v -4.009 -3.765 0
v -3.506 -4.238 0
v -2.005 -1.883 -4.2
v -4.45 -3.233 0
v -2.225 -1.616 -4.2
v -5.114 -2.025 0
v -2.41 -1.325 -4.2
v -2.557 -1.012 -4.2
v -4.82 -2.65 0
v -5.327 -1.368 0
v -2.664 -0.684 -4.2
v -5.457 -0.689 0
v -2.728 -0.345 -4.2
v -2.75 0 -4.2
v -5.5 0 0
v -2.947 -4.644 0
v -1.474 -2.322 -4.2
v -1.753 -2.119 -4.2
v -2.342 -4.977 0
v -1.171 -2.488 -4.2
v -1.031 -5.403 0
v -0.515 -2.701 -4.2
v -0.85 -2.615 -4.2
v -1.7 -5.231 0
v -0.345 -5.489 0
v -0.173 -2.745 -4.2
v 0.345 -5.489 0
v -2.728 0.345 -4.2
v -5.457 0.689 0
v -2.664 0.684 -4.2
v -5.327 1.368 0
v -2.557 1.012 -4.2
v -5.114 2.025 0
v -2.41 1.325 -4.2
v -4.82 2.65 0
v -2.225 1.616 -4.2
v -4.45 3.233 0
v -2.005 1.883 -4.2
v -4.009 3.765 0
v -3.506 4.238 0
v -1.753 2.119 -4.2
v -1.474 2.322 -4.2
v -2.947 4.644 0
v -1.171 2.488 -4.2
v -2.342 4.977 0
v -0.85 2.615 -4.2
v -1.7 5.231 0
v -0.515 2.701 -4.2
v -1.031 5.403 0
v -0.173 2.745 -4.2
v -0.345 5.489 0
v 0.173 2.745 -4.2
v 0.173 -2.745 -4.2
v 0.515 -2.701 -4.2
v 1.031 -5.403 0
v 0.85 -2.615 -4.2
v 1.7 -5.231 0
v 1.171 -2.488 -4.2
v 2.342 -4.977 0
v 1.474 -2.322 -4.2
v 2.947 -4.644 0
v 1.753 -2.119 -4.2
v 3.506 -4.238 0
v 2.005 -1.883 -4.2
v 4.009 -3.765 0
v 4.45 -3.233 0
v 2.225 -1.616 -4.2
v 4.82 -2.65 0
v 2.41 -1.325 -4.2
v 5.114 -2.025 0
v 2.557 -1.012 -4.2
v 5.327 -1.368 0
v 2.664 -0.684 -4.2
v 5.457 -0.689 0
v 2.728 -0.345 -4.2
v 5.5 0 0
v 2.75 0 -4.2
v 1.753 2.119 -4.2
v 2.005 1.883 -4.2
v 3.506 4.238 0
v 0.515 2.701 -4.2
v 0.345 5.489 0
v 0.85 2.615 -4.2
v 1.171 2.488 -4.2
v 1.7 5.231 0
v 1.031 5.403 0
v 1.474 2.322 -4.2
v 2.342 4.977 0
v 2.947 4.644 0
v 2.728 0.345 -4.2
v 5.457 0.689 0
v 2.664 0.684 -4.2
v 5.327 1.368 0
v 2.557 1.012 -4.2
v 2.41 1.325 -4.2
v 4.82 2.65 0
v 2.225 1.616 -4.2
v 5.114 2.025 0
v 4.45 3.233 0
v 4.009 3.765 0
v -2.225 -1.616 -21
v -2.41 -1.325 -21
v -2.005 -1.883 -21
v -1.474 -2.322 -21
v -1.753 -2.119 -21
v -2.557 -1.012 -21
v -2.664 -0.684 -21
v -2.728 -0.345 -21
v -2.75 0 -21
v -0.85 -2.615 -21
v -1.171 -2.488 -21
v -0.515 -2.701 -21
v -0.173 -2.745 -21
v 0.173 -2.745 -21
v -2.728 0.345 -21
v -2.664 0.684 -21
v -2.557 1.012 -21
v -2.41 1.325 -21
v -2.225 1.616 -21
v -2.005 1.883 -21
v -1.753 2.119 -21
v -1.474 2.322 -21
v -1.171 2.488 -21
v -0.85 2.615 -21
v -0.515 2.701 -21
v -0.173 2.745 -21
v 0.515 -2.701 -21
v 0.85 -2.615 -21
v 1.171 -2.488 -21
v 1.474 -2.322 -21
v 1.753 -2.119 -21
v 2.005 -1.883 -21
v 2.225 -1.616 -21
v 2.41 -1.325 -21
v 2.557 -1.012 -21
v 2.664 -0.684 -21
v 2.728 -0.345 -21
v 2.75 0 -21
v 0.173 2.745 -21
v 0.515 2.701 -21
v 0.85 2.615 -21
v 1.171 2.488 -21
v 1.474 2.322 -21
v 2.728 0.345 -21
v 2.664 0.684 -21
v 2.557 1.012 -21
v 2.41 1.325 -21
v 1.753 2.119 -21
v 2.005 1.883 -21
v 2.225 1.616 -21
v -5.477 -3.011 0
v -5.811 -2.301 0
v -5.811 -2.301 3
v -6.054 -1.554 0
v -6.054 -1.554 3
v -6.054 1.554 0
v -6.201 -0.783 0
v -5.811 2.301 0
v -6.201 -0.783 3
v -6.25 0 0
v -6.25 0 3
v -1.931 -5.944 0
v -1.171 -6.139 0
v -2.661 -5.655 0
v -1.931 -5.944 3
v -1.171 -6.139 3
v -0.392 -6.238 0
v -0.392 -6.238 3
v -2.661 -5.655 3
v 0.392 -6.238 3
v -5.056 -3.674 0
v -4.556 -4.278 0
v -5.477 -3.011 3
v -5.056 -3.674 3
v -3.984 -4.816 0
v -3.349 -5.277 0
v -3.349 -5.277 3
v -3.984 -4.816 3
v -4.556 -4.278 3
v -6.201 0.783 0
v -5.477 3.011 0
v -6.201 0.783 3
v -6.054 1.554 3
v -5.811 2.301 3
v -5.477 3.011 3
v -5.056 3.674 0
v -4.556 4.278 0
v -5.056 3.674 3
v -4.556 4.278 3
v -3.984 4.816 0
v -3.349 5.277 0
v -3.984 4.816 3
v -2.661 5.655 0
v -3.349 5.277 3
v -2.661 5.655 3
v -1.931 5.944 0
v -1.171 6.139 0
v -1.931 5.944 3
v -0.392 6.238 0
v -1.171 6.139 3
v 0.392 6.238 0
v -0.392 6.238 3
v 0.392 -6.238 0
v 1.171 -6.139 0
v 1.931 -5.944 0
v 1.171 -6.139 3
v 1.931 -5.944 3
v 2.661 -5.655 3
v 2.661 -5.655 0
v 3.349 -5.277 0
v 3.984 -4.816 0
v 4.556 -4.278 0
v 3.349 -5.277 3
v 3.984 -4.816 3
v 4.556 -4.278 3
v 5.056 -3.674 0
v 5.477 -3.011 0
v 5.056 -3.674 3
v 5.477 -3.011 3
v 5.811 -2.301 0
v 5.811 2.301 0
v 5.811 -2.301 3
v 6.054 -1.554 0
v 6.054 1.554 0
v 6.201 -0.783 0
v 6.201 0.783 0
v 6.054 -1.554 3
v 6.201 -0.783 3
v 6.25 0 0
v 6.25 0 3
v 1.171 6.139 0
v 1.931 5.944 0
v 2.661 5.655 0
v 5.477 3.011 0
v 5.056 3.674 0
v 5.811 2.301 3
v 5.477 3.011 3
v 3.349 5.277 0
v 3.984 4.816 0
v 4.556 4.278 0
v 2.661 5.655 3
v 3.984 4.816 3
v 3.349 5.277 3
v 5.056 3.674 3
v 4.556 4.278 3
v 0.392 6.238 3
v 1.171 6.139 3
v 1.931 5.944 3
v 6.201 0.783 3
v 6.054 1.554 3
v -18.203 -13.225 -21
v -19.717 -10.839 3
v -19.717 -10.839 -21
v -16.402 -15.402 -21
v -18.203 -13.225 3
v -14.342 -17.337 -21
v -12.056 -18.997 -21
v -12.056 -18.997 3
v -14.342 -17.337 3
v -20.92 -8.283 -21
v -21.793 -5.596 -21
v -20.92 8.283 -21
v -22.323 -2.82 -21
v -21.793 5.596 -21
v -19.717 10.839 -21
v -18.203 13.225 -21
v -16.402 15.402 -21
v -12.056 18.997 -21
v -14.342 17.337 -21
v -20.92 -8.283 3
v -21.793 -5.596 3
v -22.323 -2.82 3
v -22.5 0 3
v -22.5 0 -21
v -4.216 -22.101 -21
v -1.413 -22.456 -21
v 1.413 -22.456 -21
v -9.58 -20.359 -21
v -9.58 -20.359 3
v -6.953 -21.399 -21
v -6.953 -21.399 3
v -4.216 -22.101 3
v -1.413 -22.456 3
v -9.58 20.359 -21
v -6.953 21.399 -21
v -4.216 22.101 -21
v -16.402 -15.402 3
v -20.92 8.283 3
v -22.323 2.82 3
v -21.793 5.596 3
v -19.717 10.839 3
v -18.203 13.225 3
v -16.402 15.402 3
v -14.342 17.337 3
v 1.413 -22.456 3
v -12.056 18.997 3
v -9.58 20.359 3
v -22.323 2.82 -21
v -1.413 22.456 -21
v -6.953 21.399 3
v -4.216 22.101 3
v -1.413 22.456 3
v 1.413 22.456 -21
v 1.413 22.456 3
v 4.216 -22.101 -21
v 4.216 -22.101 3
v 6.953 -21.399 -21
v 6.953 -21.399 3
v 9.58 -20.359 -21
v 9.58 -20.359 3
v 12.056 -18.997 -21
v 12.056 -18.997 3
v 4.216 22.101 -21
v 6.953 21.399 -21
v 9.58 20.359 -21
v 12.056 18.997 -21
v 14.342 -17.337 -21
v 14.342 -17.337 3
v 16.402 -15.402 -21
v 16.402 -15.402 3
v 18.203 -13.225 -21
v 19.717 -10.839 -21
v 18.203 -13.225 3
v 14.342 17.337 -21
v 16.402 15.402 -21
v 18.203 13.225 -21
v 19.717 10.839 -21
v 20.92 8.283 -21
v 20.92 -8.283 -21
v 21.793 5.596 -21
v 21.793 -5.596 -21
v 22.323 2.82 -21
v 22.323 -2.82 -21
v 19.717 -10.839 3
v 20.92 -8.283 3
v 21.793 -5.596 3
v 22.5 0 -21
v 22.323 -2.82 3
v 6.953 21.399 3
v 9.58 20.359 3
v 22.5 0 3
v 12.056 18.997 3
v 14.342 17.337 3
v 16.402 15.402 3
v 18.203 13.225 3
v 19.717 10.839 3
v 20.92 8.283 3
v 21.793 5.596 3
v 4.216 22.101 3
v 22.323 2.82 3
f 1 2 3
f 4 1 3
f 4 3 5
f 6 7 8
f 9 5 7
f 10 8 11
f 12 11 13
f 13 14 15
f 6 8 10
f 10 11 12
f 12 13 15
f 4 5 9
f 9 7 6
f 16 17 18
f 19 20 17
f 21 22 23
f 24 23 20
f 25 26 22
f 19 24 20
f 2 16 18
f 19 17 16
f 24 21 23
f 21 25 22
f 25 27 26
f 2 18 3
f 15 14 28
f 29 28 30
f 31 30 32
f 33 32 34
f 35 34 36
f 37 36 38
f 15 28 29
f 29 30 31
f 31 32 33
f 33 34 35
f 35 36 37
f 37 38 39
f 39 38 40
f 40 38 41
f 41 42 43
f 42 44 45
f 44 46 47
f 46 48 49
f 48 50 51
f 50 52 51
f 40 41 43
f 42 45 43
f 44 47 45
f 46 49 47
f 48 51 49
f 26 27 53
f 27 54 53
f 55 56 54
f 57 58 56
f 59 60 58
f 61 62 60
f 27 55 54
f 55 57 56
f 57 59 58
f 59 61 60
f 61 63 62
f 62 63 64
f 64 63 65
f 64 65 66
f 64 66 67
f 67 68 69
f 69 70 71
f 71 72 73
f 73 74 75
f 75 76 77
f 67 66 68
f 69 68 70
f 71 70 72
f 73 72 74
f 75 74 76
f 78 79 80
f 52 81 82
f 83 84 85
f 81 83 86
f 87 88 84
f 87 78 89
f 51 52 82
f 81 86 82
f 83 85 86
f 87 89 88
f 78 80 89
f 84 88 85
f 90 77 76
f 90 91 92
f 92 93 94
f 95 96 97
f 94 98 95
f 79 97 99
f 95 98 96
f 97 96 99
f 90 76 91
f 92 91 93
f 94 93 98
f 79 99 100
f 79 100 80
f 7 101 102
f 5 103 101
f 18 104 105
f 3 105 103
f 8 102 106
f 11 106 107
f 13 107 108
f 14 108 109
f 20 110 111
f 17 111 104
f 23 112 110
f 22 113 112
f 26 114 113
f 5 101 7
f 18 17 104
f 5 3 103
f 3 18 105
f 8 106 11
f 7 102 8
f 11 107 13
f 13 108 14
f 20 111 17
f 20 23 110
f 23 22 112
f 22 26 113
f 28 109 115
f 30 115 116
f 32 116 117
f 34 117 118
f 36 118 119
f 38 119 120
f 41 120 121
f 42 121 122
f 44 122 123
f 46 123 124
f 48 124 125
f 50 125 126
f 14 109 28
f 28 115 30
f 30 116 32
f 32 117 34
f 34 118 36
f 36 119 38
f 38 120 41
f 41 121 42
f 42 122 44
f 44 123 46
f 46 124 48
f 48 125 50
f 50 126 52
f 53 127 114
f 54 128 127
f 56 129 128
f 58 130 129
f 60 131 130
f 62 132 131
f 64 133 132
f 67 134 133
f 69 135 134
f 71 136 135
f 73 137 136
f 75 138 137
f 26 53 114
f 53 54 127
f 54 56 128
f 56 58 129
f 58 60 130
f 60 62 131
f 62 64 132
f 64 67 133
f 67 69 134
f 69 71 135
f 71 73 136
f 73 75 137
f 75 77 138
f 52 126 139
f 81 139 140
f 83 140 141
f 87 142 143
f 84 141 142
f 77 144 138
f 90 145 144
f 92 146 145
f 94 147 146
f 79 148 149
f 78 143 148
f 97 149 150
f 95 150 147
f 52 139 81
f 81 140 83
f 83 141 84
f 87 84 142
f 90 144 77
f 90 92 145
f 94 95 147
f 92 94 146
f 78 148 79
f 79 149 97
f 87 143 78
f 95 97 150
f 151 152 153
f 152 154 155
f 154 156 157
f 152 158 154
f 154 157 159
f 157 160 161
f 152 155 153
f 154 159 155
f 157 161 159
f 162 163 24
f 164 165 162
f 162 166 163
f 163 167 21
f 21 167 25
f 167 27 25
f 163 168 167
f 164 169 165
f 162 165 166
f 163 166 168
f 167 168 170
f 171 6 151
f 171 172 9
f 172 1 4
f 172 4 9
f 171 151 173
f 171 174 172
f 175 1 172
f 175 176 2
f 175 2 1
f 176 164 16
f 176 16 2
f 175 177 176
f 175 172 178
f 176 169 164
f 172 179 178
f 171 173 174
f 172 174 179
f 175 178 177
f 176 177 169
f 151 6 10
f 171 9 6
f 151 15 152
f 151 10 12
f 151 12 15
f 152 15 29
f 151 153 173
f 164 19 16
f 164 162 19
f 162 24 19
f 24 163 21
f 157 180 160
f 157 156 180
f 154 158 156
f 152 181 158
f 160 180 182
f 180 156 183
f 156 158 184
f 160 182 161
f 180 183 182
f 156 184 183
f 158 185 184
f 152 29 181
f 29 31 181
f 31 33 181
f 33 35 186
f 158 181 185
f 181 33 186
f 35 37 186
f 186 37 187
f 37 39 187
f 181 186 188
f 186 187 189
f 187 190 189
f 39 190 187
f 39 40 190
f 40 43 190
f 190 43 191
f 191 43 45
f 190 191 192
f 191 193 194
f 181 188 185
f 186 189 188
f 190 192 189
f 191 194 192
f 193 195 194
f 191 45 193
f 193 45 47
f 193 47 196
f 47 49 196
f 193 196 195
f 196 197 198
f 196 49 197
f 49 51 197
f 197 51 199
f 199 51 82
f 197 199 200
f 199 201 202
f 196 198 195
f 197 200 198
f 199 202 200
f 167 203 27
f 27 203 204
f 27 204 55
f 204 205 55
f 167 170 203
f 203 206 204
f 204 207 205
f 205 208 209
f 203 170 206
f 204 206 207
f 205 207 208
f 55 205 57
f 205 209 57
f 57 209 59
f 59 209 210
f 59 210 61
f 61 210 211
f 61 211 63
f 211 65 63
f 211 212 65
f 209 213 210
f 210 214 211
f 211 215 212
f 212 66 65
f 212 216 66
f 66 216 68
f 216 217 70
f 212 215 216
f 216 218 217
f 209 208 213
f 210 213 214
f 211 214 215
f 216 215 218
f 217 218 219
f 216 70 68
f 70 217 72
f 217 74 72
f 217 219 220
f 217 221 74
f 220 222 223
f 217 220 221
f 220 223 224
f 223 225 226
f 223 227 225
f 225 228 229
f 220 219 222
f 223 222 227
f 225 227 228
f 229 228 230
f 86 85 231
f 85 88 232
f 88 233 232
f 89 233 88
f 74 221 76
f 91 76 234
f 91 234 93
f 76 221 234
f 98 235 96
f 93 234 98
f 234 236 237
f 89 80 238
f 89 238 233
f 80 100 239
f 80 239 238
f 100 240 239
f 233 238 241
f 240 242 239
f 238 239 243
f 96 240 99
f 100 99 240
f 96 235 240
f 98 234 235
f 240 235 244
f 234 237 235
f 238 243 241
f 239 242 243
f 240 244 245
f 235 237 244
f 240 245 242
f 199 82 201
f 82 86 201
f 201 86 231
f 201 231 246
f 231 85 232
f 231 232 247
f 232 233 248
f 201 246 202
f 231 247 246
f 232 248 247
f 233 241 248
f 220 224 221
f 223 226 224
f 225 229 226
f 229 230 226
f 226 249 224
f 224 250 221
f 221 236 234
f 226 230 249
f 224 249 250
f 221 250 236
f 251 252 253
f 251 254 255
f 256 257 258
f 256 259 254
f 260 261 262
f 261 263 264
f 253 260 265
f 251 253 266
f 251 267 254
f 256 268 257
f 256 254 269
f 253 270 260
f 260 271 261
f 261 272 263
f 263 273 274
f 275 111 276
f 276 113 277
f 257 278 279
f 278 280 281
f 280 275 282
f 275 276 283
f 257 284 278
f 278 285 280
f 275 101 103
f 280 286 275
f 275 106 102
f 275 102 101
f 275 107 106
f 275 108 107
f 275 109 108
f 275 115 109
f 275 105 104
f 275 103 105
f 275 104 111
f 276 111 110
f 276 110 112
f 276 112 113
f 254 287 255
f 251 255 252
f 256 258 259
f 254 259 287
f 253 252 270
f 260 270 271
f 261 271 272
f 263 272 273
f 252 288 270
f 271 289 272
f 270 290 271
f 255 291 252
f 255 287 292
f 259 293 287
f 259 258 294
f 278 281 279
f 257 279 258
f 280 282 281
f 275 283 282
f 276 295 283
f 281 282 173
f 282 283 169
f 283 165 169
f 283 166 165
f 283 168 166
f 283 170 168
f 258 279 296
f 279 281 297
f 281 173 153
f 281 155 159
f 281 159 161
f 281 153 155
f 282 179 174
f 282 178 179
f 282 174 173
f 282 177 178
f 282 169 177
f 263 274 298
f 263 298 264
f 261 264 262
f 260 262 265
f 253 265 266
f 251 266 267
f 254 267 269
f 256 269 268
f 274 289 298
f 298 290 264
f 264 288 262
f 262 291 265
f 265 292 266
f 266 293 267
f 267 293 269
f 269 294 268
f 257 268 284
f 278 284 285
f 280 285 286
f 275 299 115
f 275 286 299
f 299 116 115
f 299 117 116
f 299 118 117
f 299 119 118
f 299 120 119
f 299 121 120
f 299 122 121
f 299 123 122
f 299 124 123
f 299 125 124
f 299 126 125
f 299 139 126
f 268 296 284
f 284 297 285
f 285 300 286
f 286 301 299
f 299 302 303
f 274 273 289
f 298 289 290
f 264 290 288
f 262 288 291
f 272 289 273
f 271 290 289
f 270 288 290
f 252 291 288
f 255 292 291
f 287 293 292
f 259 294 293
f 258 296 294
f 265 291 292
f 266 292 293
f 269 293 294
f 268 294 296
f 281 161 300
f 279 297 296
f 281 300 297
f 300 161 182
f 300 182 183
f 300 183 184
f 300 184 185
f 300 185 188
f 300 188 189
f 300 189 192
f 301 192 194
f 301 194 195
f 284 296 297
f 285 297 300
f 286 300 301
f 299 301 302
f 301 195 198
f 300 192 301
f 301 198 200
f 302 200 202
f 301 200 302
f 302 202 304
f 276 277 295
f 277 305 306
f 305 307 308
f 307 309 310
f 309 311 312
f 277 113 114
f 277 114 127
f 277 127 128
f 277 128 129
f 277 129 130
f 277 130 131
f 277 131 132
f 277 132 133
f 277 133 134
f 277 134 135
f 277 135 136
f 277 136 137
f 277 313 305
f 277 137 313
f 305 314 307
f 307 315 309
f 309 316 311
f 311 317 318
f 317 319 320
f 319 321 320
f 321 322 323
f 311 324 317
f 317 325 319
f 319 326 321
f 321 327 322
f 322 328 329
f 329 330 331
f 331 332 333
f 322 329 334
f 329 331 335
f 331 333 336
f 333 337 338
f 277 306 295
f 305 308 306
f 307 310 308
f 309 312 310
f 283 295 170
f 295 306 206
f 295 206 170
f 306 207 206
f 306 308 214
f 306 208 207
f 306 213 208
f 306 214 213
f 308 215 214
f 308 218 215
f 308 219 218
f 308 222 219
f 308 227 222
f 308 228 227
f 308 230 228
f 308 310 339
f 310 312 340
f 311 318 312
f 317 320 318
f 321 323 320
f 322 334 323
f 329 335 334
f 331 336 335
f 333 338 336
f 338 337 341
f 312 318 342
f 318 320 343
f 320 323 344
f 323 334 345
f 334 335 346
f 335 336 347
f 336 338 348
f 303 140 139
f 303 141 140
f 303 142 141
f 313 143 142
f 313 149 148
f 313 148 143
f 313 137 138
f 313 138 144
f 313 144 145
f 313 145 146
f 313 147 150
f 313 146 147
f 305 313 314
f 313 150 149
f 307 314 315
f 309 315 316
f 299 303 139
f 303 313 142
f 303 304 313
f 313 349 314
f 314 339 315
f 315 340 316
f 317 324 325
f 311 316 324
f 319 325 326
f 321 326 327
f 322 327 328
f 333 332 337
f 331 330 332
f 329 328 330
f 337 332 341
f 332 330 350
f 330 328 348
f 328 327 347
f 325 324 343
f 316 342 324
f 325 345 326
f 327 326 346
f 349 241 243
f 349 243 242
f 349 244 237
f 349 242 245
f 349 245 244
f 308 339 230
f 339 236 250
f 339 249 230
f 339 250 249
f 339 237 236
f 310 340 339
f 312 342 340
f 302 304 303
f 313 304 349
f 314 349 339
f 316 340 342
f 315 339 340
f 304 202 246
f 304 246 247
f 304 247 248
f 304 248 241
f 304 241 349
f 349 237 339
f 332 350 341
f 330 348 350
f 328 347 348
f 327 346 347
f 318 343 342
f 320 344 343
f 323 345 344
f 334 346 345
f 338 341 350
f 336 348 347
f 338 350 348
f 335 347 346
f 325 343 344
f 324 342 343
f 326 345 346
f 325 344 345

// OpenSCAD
$fn = 50;

difference() {
	union() {
		translate(v = [0, 0, -21.0]) {
			cylinder(h = 24, r = 22.5);
		}
	}
	union() {
		translate(v = [0, 0, 0]) {
			rotate(a = [0, 0, 0]) {
				difference() {
					union() {
						translate(v = [0, 0, -24.0]) {
							cylinder(h = 24, r = 2.25);
						}
						translate(v = [0, 0, -4.2]) {
							cylinder(h = 4.2, r1 = 2.75, r2 = 5.5);
						}
						translate(v = [0, 0, -24.0]) {
							cylinder(h = 24, r = 2.75);
						}
						translate(v = [0, 0, -24.0]) {
							cylinder(h = 24, r = 2.25);
						}
					}
					union();
				}
			}
		}
		#cylinder(h = 3, r = 6.25);
	}
}
